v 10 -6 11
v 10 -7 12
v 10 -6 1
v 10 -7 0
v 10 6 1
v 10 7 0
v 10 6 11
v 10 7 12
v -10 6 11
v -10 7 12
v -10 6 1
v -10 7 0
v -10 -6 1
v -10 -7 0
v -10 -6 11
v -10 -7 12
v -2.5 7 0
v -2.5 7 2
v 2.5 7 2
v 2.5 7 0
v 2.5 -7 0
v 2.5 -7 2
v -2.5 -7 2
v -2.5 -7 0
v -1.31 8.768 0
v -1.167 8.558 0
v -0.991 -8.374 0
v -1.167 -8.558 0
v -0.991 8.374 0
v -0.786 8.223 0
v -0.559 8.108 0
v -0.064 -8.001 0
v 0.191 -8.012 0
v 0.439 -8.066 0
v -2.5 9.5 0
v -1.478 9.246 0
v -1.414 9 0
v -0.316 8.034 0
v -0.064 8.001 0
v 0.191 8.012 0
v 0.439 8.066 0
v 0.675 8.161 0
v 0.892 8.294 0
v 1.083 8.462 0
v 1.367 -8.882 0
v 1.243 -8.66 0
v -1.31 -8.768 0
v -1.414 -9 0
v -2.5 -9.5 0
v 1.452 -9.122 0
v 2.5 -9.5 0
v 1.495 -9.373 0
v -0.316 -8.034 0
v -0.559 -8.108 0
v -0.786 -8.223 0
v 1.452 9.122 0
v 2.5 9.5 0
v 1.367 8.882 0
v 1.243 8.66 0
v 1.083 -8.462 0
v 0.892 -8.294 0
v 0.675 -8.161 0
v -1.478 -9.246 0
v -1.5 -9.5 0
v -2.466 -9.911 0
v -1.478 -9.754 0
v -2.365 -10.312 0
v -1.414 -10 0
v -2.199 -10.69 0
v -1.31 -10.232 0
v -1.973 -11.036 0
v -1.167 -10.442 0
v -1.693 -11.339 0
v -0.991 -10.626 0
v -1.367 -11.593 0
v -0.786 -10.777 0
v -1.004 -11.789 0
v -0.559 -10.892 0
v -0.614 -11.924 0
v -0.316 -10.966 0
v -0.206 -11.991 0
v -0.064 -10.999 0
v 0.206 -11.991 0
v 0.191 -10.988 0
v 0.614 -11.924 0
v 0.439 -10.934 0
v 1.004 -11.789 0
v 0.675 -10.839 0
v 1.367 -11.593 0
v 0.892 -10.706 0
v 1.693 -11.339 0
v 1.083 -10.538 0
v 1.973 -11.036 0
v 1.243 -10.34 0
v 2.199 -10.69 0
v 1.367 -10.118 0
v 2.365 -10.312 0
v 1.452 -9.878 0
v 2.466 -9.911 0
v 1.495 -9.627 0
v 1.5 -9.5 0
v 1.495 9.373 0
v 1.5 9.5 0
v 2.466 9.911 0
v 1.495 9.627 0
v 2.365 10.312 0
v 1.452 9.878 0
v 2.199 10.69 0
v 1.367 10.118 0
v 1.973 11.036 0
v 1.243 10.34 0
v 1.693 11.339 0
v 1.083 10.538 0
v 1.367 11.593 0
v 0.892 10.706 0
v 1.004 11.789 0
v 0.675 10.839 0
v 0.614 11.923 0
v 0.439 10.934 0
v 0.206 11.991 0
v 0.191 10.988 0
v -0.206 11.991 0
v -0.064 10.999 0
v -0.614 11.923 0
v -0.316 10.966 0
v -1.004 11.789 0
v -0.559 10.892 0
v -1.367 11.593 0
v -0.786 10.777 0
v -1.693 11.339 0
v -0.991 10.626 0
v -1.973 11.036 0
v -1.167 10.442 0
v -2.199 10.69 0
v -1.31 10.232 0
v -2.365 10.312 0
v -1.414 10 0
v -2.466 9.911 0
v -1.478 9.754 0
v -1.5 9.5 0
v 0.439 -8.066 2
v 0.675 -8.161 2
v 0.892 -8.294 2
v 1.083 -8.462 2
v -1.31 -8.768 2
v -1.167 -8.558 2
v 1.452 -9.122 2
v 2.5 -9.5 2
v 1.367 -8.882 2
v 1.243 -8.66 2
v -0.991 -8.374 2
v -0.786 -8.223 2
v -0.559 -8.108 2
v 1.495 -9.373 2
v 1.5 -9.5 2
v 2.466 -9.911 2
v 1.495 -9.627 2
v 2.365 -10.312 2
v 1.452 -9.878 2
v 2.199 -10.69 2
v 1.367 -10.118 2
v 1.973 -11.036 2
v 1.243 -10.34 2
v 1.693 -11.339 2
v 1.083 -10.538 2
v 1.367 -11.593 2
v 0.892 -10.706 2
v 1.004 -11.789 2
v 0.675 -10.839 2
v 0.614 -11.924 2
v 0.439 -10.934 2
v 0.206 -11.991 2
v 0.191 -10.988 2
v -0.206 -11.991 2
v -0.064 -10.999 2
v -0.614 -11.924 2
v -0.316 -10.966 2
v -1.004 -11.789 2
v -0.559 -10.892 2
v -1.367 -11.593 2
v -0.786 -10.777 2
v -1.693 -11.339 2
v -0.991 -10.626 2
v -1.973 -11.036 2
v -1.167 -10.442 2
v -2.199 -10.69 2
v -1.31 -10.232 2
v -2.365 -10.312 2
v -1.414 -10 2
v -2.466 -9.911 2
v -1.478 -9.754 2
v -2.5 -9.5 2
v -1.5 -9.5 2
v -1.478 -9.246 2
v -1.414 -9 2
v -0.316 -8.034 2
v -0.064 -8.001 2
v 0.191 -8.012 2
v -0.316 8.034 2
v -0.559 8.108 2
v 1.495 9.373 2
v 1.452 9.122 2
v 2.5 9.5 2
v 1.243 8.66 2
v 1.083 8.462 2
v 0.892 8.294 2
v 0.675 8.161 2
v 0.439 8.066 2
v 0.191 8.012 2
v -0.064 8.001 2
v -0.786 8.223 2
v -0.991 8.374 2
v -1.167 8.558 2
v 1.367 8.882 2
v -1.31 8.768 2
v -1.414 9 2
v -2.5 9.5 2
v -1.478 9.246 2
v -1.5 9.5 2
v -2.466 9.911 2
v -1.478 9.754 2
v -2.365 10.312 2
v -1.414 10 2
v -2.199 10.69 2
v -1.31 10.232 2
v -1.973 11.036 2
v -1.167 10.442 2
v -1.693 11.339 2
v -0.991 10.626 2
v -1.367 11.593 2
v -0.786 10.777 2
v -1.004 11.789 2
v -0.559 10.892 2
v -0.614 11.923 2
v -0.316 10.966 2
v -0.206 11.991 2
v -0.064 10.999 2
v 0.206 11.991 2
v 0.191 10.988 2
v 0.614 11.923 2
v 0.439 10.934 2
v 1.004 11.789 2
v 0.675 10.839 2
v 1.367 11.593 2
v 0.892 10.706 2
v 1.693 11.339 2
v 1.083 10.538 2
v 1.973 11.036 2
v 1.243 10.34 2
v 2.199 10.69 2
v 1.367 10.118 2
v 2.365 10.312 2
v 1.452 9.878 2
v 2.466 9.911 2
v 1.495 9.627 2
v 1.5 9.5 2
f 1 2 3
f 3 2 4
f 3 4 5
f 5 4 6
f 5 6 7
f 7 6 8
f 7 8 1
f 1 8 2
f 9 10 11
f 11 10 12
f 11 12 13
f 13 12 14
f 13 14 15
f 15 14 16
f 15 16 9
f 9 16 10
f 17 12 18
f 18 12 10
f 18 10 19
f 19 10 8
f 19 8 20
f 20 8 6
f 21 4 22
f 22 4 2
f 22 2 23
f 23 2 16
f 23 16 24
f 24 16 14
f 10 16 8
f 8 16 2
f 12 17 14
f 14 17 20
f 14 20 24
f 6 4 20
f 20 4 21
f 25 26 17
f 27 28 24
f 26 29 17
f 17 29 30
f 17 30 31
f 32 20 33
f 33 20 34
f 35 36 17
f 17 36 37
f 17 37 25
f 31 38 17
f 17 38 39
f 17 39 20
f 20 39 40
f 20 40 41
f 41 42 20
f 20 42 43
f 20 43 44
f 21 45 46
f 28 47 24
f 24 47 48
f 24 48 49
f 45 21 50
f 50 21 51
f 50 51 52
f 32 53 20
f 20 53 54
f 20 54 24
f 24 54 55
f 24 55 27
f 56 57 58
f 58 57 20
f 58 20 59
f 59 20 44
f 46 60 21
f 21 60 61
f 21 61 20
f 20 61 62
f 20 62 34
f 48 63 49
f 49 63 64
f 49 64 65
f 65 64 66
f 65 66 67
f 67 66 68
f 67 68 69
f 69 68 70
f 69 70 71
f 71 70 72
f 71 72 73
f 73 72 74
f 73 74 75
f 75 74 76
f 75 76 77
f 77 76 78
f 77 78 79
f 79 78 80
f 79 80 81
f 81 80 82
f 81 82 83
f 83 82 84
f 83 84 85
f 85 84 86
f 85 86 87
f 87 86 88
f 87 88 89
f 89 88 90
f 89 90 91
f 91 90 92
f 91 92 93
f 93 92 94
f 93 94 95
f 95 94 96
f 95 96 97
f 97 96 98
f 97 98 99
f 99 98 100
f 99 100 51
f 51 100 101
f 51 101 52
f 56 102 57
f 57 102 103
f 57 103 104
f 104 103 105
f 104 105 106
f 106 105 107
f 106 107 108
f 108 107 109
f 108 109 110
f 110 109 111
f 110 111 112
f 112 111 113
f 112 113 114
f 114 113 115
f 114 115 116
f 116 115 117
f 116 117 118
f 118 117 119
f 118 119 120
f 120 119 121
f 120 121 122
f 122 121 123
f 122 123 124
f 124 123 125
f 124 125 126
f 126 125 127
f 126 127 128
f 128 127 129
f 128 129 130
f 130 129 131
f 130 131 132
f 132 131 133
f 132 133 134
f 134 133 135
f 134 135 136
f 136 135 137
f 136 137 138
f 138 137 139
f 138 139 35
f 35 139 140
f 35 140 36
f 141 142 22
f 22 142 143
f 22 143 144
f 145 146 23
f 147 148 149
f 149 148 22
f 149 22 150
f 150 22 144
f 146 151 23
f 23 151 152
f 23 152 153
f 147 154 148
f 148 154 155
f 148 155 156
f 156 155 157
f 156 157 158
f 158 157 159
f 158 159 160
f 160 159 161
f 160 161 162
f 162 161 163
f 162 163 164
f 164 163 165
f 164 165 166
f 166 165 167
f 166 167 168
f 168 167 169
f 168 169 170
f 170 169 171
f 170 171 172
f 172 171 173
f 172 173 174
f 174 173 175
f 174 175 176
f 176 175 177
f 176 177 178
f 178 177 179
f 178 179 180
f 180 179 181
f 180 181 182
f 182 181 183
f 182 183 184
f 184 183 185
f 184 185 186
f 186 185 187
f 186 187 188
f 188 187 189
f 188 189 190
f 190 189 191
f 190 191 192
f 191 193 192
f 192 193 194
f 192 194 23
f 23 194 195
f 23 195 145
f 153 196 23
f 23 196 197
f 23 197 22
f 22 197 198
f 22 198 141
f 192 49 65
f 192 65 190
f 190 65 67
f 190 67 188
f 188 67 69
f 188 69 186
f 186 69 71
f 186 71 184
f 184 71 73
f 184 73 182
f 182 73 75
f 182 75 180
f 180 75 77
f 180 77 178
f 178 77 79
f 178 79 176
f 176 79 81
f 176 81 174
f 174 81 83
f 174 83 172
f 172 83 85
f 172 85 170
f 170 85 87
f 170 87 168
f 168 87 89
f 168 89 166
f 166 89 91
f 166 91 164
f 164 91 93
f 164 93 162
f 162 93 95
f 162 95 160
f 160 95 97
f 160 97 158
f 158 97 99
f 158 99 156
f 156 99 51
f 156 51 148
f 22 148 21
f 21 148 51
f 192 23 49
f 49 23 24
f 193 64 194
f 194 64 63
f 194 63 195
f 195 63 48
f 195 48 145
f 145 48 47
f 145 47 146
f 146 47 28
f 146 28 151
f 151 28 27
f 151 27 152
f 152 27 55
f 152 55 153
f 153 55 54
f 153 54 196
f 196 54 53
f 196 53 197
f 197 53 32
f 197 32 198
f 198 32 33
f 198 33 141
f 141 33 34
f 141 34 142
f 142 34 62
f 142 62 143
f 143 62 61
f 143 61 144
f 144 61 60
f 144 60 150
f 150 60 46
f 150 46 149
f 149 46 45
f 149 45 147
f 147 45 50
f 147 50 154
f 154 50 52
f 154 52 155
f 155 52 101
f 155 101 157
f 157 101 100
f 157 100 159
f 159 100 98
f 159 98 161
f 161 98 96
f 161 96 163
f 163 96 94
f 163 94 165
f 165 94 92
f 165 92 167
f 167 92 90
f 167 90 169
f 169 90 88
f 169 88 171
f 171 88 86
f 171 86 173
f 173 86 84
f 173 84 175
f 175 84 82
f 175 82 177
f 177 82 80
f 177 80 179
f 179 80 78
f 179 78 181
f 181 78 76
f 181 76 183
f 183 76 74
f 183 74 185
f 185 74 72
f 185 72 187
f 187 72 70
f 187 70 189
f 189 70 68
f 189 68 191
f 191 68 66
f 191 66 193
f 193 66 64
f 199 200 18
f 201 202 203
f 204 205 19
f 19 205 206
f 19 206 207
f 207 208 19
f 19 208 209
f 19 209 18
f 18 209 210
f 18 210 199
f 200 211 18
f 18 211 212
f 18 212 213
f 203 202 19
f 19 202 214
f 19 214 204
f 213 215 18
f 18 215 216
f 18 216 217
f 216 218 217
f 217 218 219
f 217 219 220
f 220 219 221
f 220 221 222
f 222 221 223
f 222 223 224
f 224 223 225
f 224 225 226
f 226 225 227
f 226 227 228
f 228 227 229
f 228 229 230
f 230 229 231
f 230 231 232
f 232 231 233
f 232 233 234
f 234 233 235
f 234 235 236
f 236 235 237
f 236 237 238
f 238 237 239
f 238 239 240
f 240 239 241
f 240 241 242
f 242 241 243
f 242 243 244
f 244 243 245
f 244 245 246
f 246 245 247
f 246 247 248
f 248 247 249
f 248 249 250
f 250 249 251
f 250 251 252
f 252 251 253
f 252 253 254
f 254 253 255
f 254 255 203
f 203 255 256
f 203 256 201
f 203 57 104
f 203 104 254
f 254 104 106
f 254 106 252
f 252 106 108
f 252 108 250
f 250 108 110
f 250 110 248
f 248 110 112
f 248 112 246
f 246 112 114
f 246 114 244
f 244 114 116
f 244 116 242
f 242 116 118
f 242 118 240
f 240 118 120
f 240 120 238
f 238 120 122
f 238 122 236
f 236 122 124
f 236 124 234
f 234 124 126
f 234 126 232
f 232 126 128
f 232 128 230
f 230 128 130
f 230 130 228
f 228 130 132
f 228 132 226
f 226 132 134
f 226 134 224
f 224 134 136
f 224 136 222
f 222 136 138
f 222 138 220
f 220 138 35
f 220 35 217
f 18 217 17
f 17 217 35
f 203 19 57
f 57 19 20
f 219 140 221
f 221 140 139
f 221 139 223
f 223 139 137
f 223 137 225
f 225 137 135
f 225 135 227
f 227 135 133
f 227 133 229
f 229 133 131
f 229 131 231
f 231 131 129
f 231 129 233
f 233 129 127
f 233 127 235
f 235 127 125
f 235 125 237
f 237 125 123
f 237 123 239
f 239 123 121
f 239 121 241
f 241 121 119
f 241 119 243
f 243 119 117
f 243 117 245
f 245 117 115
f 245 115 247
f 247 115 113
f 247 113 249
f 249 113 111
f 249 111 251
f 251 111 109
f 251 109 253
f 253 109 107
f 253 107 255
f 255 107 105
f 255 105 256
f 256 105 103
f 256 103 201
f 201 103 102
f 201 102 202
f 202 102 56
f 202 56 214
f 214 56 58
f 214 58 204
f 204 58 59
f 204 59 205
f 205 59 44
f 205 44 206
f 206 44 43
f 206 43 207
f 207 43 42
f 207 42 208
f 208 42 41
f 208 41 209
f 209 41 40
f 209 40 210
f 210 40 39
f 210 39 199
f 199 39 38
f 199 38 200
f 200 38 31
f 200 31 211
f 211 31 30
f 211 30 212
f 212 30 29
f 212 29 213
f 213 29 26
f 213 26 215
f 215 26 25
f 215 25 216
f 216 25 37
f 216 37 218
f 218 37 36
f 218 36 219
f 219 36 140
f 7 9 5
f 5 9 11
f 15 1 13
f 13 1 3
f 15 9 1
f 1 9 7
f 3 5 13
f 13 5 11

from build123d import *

# Parameters (mm, degrees)
SKETCH1_W           = 20
SKETCH1_H           = 14
BOSS_EXTRUDE1_DEPTH = 12
SKETCH2_R           = 1.5
BOSS_EXTRUDE2_DEPTH = 2
SHELL2_START        = -6
SHELL2_OUTLINE_W    = 20
SHELL2_OUTLINE_H    = 10
SHELL2_DEPTH        = 12


# Read off the part's stored shape, not the designer's step: Shell2
with BuildPart() as part:
    # Sketch1 → Boss-Extrude1 (new body)
    with BuildSketch(Plane.XY):
        Rectangle(SKETCH1_W, SKETCH1_H)
    extrude(amount=BOSS_EXTRUDE1_DEPTH)

    # Sketch2 → Boss-Extrude2 (add)
    # profile 1 of 2: a face of its own
    with BuildSketch(Plane.XY):
        with BuildLine():
            Line((2.5, -9.5), (2.5, -7))
            Line((2.5, -7), (-2.5, -7))
            Line((-2.5, -7), (-2.5, -9.5))
            ThreePointArc((-2.5, -9.5), (0, -12), (2.5, -9.5))
        make_face()
        with Locations((0, -9.5)):
            Circle(SKETCH2_R, mode=Mode.SUBTRACT)
    # profile 2 of 2: a face of its own
    with BuildSketch(Plane.XY):
        with BuildLine():
            Line((2.5, 9.5), (2.5, 7))
            Line((2.5, 7), (-2.5, 7))
            Line((-2.5, 7), (-2.5, 9.5))
            ThreePointArc((-2.5, 9.5), (0, 12), (2.5, 9.5))
        make_face()
        with Locations((0, 9.5)):
            Circle(SKETCH2_R, mode=Mode.SUBTRACT)
    extrude(amount=BOSS_EXTRUDE2_DEPTH)

    # Shell2 outline → Shell2 (cut)
    with BuildSketch(Plane(origin=(0, 0, 0), x_dir=(1, 0, 0), z_dir=(0, 1, 0)).offset(SHELL2_START)):
        with Locations((0, -6)):
            Rectangle(SHELL2_OUTLINE_W, SHELL2_OUTLINE_H)
    extrude(amount=SHELL2_DEPTH, mode=Mode.SUBTRACT)


solid = part.part
